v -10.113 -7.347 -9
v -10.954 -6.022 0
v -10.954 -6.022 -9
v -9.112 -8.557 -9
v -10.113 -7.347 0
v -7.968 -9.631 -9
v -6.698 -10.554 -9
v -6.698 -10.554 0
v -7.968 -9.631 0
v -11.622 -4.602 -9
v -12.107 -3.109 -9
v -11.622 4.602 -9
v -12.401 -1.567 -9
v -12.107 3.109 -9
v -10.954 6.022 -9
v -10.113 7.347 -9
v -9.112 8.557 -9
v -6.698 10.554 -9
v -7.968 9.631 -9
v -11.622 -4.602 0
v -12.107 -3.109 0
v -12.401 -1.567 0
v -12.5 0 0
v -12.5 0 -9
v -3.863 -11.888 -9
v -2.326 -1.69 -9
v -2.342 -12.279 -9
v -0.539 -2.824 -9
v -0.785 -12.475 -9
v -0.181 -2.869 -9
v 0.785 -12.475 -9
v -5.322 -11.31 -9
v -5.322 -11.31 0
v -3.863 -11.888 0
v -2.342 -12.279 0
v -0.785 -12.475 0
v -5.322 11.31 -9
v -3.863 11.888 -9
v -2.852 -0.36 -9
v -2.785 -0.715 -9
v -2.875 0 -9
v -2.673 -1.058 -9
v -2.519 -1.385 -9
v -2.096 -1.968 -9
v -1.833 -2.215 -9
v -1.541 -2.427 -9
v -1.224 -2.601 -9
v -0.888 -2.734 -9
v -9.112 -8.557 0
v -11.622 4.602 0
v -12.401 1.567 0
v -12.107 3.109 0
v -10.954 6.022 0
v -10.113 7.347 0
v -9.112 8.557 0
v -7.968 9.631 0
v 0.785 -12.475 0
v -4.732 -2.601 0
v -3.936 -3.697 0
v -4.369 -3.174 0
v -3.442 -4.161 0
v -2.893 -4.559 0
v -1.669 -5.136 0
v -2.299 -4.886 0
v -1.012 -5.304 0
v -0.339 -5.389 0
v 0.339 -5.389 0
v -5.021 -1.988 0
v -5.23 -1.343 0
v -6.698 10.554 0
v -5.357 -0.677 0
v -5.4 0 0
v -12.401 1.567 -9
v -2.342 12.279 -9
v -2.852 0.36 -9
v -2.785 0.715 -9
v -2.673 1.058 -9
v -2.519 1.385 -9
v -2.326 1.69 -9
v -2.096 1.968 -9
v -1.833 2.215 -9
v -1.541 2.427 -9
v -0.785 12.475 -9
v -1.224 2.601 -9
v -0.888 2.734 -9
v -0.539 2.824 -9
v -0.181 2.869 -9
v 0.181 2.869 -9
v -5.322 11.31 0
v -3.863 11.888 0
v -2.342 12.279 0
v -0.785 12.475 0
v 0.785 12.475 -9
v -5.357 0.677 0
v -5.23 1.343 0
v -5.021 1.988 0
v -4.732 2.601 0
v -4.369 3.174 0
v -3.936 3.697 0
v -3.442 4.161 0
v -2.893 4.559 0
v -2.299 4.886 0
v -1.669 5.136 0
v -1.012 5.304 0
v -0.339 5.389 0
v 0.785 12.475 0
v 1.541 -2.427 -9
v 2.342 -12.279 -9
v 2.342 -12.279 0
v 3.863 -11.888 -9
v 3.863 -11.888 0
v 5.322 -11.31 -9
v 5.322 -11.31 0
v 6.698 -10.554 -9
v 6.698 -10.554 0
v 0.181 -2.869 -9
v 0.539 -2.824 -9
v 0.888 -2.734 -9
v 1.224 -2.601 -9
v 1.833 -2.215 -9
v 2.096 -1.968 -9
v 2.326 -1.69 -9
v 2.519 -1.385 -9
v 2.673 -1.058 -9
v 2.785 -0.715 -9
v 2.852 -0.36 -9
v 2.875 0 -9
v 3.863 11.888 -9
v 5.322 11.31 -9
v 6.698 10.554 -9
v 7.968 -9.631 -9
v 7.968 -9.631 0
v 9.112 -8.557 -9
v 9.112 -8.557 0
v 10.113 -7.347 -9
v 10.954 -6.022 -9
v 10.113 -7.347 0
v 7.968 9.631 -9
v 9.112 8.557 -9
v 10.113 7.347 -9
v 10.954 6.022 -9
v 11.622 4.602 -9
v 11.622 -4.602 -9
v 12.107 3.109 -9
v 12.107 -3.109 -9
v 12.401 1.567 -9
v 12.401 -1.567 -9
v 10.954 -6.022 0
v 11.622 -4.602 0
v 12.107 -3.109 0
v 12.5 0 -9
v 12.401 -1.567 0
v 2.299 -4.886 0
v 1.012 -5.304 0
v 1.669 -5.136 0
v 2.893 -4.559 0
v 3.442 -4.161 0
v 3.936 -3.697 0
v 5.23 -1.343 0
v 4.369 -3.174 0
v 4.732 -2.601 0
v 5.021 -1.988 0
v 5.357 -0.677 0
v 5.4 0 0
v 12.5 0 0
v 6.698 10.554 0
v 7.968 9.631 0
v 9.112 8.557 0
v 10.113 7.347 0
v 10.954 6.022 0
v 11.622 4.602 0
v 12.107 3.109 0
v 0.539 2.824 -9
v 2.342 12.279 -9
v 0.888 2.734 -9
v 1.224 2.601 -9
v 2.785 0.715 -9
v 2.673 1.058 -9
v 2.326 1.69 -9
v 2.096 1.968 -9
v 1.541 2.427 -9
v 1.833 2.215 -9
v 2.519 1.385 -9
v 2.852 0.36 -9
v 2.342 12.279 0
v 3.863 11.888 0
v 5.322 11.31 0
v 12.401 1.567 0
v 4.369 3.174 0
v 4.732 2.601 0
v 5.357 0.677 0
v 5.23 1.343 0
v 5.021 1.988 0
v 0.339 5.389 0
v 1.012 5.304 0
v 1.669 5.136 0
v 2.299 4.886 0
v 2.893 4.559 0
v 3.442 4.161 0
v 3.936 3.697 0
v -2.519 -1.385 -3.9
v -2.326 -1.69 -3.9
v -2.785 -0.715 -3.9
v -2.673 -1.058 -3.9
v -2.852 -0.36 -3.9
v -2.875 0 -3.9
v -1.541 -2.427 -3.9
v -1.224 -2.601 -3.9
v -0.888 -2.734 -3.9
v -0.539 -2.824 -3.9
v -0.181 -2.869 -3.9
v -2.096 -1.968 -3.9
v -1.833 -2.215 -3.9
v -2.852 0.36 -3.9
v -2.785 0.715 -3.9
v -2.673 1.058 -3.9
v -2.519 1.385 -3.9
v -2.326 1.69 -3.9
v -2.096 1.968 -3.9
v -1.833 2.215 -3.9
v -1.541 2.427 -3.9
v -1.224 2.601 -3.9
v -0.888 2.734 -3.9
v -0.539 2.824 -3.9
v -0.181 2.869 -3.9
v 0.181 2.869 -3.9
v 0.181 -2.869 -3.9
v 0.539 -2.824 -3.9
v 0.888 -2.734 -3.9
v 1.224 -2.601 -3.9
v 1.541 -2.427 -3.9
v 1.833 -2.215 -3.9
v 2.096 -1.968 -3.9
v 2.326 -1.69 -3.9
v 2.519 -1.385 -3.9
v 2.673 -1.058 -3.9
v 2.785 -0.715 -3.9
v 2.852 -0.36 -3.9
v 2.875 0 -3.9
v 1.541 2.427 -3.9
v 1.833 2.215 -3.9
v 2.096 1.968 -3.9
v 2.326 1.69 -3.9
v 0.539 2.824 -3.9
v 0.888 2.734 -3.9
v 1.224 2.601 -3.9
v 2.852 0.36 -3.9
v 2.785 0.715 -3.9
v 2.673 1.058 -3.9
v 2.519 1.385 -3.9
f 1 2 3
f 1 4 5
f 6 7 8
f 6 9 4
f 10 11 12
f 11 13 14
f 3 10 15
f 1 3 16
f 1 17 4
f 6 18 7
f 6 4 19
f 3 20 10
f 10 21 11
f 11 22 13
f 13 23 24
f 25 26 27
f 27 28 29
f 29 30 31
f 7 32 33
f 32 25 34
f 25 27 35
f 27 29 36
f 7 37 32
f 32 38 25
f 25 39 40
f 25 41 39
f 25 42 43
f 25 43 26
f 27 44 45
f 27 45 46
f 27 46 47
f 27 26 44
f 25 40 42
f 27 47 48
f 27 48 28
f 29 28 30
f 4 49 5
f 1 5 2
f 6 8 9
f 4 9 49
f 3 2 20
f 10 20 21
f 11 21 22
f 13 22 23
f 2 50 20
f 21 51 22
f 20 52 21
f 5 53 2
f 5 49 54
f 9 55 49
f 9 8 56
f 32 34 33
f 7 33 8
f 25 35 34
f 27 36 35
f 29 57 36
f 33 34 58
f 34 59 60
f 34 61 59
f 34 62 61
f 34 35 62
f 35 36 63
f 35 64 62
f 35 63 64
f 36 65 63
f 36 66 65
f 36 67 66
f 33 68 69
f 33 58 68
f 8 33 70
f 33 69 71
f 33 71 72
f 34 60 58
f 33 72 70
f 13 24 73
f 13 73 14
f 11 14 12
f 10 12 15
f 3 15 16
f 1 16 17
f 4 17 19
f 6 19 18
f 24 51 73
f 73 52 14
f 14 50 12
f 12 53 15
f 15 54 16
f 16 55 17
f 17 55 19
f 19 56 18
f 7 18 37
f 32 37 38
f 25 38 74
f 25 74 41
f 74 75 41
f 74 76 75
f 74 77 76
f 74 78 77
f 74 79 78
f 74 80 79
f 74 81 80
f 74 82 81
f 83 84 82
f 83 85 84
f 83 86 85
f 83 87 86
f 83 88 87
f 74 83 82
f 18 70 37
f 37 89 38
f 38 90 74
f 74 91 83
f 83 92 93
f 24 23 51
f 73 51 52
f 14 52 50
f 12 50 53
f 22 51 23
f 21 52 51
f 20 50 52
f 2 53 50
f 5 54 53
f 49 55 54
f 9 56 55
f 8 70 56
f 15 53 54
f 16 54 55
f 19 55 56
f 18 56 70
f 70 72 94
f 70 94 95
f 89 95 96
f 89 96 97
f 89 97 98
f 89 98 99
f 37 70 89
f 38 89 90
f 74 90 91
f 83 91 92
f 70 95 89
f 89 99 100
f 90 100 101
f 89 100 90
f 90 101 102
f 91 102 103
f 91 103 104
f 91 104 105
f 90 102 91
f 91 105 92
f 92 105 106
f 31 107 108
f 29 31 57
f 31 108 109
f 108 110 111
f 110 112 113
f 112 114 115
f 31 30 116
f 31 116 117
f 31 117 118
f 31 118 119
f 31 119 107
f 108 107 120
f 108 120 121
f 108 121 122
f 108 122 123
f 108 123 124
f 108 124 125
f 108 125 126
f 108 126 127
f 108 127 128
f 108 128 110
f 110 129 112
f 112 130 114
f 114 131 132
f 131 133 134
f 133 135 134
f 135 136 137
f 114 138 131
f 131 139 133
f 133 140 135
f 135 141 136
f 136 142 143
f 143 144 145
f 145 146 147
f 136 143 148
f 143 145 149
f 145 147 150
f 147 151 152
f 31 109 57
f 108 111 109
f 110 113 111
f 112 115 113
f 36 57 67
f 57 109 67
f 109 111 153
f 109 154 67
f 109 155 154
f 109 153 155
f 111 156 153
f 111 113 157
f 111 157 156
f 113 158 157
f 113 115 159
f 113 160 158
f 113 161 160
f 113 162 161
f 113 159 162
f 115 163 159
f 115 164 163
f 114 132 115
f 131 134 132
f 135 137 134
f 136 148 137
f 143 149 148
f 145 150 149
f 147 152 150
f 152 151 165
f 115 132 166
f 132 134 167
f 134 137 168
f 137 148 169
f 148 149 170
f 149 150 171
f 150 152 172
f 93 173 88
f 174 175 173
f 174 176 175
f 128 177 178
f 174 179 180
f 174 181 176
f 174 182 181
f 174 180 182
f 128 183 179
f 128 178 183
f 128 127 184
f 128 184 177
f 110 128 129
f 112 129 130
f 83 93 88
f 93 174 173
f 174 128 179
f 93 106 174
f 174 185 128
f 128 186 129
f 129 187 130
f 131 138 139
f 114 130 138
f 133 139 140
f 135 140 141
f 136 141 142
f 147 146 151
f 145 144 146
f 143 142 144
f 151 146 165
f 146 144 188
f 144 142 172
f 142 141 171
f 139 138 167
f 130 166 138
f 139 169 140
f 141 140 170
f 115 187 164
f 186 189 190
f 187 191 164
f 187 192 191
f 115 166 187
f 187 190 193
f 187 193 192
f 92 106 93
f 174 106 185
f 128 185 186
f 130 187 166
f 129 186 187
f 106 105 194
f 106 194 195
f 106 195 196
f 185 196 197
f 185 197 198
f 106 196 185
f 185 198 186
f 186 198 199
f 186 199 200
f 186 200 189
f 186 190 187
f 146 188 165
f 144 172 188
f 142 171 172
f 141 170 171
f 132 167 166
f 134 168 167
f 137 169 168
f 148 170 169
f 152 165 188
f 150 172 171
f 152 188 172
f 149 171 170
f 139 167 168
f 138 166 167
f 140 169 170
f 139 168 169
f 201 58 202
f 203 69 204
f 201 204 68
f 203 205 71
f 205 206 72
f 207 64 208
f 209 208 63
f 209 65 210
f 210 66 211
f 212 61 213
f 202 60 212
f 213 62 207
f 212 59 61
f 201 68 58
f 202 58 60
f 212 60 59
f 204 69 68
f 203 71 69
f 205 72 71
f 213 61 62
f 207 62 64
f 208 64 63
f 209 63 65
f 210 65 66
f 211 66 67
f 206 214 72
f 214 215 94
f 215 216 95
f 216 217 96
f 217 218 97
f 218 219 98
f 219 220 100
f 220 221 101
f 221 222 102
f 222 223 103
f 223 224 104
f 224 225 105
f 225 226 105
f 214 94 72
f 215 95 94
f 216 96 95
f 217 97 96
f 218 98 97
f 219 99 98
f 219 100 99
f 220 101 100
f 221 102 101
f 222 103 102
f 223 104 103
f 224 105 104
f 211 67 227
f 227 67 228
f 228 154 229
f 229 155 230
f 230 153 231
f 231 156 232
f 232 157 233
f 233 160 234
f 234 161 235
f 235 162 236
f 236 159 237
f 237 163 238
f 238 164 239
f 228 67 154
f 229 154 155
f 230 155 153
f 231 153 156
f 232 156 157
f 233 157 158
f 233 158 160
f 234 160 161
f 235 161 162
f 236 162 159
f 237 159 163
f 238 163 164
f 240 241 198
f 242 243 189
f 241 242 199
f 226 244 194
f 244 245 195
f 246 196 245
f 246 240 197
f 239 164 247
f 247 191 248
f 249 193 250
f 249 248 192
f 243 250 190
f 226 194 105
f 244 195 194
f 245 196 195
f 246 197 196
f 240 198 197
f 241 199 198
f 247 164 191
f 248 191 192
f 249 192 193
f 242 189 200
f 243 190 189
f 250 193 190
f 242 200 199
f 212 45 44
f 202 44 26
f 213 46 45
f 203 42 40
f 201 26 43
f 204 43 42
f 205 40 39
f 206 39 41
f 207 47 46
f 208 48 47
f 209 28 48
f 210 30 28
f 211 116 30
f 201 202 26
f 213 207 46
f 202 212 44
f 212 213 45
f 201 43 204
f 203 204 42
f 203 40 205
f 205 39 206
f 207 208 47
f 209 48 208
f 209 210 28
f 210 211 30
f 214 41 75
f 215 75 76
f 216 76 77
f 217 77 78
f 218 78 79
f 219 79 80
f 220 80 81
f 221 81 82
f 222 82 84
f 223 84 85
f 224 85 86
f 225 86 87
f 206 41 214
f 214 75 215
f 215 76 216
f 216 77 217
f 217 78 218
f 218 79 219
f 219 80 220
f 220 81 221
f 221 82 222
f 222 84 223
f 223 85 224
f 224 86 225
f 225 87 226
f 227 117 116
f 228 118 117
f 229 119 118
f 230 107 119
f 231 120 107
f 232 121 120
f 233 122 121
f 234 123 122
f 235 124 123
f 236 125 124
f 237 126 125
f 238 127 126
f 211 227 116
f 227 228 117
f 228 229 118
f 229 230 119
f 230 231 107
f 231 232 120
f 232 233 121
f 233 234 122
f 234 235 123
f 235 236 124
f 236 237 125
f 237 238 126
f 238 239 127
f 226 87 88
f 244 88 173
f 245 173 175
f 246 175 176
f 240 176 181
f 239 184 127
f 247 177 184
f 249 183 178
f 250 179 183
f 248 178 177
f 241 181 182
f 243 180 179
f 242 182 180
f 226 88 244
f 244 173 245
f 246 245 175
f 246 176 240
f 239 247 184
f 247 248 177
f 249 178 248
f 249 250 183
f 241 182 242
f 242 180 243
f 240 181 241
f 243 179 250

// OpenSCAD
$fn = 50;


difference() {
	union() {
		translate(v = [0, 0, -9.0000000000]) {
			cylinder(h = 9, r = 12.5000000000);
		}
		#translate(v = [0, 0, -12.0000000000]) {
			cylinder(h = 12, r = 2.8750000000);
		}
	}
	union() {
		translate(v = [0, 0, 0]) {
			rotate(a = [0, 0, 0]) {
				difference() {
					union() {
						translate(v = [0, 0, -12.0000000000]) {
							cylinder(h = 12, r = 2.6000000000);
						}
						translate(v = [0, 0, -3.9000000000]) {
							cylinder(h = 3.9000000000, r1 = 2.8750000000, r2 = 5.4000000000);
						}
						translate(v = [0, 0, -12.0000000000]) {
							cylinder(h = 12, r = 2.8750000000);
						}
						translate(v = [0, 0, -12.0000000000]) {
							cylinder(h = 12, r = 2.6000000000);
						}
					}
					union();
				}
			}
		}
	}
}
